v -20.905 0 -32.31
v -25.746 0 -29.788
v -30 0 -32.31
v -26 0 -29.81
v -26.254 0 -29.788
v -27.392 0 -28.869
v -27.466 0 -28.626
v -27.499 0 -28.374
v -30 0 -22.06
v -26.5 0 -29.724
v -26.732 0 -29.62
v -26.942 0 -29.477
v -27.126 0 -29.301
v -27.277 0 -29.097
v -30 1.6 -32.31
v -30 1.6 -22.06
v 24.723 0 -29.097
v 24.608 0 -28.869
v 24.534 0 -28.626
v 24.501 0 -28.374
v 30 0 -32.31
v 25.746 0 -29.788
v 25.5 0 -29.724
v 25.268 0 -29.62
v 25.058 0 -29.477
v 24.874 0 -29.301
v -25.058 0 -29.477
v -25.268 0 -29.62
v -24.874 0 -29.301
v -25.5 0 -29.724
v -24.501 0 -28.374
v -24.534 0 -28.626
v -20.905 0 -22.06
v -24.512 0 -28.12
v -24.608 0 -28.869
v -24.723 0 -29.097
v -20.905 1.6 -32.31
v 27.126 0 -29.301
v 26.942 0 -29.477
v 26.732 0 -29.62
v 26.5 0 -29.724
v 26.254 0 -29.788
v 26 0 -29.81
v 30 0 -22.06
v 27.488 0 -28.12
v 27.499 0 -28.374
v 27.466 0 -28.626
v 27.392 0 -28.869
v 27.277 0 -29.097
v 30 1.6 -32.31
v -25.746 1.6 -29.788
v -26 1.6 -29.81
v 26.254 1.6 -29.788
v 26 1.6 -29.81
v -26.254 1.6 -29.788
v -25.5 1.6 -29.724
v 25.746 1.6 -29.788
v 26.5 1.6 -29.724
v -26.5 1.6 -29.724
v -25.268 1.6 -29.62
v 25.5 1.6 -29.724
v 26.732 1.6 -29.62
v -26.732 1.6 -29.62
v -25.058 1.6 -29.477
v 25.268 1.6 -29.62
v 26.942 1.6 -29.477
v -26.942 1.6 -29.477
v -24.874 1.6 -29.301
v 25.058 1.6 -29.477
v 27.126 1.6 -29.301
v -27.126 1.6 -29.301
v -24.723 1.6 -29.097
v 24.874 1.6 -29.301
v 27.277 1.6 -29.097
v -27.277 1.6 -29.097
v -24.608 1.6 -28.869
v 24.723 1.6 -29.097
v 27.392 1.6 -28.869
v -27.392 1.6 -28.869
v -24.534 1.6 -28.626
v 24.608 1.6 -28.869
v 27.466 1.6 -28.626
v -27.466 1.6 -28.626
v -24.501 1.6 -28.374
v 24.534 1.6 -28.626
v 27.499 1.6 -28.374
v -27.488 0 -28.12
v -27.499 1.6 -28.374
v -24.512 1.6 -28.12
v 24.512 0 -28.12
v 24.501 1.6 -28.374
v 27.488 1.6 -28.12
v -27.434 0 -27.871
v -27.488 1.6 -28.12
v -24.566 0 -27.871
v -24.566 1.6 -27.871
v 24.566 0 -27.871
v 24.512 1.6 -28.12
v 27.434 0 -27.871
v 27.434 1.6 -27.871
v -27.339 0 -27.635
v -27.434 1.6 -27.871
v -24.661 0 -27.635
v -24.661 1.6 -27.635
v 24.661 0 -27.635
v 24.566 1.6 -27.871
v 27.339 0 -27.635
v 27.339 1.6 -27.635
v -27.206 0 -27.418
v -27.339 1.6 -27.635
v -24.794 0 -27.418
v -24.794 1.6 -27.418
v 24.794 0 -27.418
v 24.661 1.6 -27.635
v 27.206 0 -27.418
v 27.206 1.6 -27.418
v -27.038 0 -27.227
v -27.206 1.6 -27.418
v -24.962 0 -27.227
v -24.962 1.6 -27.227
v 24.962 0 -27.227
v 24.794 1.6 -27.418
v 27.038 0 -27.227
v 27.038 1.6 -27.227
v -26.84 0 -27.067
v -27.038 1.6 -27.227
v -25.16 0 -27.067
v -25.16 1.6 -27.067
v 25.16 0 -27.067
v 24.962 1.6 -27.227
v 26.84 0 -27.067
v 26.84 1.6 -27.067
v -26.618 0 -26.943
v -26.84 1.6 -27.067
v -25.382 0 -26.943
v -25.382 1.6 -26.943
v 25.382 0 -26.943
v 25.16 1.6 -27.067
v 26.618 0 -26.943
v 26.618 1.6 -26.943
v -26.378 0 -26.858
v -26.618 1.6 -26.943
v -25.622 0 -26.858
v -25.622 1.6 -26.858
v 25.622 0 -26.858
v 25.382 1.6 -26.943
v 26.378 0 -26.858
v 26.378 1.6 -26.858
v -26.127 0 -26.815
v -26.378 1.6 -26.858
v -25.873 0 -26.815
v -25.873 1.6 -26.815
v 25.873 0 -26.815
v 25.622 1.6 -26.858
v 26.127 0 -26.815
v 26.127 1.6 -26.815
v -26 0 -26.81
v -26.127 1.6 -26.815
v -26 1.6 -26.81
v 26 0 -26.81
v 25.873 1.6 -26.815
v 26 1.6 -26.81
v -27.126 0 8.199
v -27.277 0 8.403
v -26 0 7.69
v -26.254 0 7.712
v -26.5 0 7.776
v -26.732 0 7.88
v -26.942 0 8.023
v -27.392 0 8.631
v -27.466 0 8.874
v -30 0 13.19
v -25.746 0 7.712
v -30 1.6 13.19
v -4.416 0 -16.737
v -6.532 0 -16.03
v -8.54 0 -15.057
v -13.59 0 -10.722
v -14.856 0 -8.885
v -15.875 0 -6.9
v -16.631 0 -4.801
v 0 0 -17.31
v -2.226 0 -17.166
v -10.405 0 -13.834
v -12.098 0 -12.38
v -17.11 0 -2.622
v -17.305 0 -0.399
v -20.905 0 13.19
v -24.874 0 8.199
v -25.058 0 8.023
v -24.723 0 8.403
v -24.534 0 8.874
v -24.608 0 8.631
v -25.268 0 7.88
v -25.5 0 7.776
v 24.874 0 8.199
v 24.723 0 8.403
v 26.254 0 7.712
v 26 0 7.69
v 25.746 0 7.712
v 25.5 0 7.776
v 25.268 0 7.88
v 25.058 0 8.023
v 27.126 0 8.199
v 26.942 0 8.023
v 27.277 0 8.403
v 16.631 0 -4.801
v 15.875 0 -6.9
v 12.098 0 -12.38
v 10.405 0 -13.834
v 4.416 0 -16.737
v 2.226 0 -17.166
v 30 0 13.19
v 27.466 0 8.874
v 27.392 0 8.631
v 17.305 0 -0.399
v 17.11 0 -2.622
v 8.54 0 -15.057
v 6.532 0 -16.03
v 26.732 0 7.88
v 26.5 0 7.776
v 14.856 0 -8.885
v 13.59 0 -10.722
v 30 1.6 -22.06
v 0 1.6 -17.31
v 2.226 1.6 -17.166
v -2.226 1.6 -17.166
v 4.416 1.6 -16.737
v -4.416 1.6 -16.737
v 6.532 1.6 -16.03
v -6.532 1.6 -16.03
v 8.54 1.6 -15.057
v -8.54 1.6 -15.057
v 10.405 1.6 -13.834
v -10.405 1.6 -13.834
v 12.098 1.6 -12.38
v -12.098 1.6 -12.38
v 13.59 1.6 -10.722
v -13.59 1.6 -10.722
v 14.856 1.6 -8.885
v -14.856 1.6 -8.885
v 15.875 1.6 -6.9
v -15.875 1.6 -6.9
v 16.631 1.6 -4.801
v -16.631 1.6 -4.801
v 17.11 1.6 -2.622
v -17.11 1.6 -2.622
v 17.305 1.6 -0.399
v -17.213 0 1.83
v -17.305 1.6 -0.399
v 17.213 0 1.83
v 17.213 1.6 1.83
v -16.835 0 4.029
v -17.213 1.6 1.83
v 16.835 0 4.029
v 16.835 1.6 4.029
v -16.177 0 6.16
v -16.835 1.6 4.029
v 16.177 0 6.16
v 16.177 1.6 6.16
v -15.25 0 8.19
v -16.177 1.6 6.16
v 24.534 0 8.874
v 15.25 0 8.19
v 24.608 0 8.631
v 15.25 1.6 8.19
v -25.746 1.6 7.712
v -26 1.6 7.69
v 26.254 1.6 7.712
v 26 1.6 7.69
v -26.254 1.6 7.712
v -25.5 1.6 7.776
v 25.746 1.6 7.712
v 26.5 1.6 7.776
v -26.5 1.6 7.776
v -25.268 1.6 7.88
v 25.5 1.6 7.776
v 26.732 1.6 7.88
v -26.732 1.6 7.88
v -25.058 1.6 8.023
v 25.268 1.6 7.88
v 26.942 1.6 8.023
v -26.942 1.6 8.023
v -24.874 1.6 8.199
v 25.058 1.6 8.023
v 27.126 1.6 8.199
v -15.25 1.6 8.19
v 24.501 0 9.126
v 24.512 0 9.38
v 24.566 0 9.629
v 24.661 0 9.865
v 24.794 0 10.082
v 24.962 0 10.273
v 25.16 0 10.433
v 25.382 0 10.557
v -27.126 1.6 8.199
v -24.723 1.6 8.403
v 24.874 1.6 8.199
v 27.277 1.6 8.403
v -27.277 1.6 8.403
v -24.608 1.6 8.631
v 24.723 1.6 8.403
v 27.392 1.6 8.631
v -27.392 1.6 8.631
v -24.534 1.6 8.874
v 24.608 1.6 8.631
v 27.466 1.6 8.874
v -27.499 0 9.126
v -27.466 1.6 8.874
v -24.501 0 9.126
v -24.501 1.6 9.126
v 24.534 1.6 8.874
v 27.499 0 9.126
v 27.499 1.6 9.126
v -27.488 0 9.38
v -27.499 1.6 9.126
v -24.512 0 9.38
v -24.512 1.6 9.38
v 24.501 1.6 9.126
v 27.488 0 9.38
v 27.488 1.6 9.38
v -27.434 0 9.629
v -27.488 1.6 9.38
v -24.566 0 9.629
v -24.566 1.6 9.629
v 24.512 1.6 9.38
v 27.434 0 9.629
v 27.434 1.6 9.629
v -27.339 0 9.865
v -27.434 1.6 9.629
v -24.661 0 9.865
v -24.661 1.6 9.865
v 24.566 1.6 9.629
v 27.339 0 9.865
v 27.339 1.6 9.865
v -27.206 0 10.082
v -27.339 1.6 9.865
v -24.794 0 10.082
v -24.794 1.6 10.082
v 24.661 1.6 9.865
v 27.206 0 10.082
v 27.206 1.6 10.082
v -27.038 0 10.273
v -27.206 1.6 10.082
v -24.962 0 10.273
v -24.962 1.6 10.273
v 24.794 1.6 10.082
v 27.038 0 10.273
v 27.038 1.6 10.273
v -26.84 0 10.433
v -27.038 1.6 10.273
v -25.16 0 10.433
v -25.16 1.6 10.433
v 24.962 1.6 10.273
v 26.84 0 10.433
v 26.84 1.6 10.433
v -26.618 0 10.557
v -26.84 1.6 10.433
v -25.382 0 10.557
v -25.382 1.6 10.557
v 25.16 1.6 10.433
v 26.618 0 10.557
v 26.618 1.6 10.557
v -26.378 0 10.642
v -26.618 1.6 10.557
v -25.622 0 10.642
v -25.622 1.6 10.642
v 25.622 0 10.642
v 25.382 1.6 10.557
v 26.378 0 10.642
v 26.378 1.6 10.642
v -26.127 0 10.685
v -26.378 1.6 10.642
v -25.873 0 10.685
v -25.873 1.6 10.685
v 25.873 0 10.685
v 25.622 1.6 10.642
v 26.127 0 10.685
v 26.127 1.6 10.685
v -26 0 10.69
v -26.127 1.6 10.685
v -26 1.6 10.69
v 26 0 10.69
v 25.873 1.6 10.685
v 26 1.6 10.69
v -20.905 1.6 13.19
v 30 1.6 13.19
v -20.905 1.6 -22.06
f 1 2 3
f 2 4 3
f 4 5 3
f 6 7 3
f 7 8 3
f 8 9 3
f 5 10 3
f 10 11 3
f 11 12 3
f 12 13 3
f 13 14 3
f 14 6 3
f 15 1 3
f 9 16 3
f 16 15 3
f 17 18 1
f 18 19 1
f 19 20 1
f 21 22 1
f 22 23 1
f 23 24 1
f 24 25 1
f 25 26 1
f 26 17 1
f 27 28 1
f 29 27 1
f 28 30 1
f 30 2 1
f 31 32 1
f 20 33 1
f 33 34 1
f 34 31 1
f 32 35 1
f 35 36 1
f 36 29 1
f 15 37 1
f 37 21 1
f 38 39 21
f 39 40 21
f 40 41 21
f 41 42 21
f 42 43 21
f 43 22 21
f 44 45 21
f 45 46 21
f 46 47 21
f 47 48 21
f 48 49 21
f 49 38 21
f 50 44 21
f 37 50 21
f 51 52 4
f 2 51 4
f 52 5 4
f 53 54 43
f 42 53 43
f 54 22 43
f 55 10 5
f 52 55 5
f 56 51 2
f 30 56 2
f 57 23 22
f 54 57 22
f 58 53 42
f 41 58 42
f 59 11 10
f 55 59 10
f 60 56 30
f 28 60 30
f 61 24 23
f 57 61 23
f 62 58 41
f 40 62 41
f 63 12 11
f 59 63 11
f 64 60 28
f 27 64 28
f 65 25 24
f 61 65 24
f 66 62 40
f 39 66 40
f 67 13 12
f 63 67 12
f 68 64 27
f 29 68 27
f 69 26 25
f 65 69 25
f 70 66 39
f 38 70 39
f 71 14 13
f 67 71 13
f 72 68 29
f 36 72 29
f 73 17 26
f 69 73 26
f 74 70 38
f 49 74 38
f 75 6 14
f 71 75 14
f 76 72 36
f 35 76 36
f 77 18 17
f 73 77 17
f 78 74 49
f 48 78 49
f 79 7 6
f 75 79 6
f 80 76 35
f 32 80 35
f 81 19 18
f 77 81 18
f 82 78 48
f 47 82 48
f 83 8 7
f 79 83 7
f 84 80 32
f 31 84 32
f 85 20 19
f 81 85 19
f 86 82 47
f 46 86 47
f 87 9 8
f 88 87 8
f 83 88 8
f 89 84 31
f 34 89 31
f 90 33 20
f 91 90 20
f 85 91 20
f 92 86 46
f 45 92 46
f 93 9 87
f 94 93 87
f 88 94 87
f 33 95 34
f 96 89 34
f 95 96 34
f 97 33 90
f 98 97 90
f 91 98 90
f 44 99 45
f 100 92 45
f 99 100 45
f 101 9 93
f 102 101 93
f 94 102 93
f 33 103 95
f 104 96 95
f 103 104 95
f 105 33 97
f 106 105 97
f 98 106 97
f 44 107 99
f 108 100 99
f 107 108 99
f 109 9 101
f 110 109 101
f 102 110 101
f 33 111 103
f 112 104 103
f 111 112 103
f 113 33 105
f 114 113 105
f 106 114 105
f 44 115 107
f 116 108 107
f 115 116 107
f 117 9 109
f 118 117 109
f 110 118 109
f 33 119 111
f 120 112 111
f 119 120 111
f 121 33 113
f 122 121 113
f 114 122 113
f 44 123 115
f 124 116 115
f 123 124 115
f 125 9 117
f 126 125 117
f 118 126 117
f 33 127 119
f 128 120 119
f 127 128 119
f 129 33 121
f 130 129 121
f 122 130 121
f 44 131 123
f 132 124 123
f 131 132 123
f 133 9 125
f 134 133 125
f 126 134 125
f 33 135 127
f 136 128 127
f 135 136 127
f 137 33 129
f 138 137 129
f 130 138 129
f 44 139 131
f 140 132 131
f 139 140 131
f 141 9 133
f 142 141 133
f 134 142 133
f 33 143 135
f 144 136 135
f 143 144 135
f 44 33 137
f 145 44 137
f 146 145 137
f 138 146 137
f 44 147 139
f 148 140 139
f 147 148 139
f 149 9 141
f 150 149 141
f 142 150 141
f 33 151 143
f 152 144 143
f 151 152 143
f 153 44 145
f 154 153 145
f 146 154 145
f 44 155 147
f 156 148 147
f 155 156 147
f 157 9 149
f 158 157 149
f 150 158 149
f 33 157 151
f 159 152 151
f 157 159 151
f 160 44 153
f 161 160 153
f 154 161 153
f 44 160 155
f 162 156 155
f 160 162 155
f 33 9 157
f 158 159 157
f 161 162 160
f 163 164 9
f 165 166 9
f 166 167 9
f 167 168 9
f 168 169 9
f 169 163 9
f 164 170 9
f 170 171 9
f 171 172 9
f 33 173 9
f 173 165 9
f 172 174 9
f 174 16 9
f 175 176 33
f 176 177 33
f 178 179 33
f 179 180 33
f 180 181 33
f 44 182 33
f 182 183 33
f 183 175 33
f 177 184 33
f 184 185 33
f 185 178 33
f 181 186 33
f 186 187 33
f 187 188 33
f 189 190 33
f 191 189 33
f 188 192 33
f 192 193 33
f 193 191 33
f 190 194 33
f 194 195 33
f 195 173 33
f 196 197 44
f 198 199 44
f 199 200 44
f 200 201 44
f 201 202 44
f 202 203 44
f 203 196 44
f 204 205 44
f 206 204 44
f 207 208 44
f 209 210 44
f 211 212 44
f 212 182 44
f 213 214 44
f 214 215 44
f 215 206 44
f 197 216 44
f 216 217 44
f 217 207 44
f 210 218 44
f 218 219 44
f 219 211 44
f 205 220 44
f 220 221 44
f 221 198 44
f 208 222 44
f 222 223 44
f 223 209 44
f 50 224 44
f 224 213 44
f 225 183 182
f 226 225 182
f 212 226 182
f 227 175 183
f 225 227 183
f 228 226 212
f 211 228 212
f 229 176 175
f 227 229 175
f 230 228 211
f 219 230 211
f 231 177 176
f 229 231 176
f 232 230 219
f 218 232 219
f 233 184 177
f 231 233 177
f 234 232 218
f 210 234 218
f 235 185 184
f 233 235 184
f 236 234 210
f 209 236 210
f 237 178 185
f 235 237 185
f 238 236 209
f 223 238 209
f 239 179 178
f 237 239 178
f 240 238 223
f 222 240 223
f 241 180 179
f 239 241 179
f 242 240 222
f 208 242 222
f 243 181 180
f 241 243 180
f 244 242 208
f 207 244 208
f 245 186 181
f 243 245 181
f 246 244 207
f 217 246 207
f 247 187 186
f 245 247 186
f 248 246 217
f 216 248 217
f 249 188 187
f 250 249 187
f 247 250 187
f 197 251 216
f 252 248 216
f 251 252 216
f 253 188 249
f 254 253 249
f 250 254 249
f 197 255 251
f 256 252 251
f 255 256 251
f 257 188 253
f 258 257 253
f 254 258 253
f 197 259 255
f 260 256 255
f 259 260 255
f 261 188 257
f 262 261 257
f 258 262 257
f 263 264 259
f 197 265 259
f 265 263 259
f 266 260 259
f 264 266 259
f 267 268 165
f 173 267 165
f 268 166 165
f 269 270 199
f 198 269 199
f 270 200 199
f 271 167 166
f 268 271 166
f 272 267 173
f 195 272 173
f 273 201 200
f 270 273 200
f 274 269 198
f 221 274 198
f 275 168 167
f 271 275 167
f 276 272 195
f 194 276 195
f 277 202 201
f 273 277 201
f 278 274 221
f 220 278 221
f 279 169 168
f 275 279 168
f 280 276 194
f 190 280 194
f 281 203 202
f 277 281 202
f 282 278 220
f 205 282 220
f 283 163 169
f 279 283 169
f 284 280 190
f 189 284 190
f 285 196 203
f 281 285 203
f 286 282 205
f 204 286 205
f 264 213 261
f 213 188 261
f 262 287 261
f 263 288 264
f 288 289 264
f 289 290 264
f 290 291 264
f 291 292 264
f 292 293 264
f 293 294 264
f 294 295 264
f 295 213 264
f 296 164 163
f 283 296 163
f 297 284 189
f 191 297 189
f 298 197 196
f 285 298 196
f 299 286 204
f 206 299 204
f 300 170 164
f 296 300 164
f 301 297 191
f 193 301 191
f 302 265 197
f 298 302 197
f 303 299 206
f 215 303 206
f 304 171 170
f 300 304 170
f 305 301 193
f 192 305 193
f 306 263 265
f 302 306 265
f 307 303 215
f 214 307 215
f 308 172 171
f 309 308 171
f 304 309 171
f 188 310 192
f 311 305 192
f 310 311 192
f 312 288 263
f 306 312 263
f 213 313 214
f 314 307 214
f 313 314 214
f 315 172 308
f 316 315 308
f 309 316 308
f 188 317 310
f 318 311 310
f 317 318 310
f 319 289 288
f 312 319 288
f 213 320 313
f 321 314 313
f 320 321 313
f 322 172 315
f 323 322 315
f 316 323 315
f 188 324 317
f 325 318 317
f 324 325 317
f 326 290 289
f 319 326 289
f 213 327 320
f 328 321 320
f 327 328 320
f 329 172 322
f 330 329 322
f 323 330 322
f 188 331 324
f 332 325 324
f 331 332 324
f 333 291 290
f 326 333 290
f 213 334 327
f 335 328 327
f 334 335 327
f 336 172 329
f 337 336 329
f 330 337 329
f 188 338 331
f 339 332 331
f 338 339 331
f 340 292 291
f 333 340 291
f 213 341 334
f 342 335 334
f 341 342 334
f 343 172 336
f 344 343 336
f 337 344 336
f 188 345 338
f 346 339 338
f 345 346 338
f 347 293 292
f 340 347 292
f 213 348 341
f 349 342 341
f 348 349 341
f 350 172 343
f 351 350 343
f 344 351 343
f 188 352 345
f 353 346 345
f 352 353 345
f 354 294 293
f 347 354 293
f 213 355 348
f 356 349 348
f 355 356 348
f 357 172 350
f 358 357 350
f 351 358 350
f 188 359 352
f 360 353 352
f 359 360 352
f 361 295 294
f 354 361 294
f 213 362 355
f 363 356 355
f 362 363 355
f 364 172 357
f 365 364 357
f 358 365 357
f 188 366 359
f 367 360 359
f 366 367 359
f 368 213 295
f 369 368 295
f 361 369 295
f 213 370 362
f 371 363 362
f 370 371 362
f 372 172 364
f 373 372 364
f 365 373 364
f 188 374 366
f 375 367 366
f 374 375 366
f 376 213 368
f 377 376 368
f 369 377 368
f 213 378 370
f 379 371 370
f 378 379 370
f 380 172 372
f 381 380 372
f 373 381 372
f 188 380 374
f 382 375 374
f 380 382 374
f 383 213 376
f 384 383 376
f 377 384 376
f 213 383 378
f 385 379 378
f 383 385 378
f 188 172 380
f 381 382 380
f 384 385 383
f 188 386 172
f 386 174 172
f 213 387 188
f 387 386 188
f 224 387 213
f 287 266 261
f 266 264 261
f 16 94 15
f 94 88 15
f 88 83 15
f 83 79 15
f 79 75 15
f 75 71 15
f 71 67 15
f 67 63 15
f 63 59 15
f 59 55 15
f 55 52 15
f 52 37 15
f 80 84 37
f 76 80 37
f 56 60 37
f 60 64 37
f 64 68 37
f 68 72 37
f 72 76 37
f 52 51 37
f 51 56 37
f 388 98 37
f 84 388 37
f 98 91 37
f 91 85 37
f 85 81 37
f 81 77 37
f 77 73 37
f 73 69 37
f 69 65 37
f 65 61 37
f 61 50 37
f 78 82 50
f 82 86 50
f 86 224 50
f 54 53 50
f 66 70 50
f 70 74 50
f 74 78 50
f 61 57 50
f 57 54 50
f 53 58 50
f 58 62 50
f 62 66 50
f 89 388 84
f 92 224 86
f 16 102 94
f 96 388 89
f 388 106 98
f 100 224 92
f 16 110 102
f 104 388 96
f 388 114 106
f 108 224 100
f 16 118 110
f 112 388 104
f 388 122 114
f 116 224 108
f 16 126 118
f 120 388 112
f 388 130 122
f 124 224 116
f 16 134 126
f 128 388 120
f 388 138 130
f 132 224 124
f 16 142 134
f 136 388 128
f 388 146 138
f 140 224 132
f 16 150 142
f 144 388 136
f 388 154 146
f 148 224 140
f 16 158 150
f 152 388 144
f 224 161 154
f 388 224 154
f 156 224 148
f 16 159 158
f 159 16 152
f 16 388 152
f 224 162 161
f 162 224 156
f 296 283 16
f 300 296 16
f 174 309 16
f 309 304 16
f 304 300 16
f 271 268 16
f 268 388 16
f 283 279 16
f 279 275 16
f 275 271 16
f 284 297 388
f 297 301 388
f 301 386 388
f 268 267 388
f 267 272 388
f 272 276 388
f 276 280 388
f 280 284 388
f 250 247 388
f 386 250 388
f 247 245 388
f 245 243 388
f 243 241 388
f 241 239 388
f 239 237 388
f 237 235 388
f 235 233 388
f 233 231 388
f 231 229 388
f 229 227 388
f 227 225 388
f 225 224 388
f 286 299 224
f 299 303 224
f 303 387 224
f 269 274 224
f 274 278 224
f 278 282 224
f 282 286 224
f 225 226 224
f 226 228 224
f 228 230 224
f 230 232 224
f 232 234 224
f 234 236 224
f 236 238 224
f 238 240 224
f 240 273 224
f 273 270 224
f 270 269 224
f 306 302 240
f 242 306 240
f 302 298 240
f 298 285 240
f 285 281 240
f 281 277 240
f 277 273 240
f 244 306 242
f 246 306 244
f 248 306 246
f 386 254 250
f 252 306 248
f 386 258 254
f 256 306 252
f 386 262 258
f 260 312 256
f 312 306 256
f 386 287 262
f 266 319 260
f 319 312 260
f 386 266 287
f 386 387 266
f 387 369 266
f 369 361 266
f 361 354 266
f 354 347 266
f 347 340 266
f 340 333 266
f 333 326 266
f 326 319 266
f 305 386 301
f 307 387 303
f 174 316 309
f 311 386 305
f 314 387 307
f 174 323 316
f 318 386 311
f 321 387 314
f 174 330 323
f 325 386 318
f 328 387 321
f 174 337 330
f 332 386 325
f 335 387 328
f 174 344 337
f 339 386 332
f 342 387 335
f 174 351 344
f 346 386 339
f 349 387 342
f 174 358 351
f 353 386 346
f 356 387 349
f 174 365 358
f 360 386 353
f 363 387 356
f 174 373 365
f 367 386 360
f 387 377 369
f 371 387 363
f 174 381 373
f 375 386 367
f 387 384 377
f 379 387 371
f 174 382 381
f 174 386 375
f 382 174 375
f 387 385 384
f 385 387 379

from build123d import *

# Parameters (mm, degrees)
SKETCH1_W           = 60
SKETCH1_H           = 45.5
SKETCH1_R           = 1.5
BOSS_EXTRUDE3_DEPTH = 1.6


with BuildPart() as part:
    # Sketch1 → Boss-Extrude3 (new body)
    with BuildSketch(Plane(origin=(0, 0, 0), x_dir=(1, 0, 0), z_dir=(0, 1, 0))):
        with Locations((0, 9.56004902)):
            Rectangle(SKETCH1_W, SKETCH1_H)
        with Locations(Location((-26, 28.31004902, 0), (0, 0, 270))):
            Circle(SKETCH1_R, mode=Mode.SUBTRACT)
        with Locations(Location((26, 28.31004902, 0), (0, 0, 270))):
            Circle(SKETCH1_R, mode=Mode.SUBTRACT)
        with Locations(Location((-26, -9.18995098, 0), (0, 0, 270))):
            Circle(SKETCH1_R, mode=Mode.SUBTRACT)
        with Locations(Location((26, -9.18995098, 0), (0, 0, 270))):
            Circle(SKETCH1_R, mode=Mode.SUBTRACT)
        with BuildLine():
            Line((-15.25, -8.18995098), (15.25, -8.18995098))
            ThreePointArc((15.25, -8.18995098), (0, 17.31004902), (-15.25, -8.18995098))
        make_face(mode=Mode.SUBTRACT)
    extrude(amount=BOSS_EXTRUDE3_DEPTH)


solid = part.part
